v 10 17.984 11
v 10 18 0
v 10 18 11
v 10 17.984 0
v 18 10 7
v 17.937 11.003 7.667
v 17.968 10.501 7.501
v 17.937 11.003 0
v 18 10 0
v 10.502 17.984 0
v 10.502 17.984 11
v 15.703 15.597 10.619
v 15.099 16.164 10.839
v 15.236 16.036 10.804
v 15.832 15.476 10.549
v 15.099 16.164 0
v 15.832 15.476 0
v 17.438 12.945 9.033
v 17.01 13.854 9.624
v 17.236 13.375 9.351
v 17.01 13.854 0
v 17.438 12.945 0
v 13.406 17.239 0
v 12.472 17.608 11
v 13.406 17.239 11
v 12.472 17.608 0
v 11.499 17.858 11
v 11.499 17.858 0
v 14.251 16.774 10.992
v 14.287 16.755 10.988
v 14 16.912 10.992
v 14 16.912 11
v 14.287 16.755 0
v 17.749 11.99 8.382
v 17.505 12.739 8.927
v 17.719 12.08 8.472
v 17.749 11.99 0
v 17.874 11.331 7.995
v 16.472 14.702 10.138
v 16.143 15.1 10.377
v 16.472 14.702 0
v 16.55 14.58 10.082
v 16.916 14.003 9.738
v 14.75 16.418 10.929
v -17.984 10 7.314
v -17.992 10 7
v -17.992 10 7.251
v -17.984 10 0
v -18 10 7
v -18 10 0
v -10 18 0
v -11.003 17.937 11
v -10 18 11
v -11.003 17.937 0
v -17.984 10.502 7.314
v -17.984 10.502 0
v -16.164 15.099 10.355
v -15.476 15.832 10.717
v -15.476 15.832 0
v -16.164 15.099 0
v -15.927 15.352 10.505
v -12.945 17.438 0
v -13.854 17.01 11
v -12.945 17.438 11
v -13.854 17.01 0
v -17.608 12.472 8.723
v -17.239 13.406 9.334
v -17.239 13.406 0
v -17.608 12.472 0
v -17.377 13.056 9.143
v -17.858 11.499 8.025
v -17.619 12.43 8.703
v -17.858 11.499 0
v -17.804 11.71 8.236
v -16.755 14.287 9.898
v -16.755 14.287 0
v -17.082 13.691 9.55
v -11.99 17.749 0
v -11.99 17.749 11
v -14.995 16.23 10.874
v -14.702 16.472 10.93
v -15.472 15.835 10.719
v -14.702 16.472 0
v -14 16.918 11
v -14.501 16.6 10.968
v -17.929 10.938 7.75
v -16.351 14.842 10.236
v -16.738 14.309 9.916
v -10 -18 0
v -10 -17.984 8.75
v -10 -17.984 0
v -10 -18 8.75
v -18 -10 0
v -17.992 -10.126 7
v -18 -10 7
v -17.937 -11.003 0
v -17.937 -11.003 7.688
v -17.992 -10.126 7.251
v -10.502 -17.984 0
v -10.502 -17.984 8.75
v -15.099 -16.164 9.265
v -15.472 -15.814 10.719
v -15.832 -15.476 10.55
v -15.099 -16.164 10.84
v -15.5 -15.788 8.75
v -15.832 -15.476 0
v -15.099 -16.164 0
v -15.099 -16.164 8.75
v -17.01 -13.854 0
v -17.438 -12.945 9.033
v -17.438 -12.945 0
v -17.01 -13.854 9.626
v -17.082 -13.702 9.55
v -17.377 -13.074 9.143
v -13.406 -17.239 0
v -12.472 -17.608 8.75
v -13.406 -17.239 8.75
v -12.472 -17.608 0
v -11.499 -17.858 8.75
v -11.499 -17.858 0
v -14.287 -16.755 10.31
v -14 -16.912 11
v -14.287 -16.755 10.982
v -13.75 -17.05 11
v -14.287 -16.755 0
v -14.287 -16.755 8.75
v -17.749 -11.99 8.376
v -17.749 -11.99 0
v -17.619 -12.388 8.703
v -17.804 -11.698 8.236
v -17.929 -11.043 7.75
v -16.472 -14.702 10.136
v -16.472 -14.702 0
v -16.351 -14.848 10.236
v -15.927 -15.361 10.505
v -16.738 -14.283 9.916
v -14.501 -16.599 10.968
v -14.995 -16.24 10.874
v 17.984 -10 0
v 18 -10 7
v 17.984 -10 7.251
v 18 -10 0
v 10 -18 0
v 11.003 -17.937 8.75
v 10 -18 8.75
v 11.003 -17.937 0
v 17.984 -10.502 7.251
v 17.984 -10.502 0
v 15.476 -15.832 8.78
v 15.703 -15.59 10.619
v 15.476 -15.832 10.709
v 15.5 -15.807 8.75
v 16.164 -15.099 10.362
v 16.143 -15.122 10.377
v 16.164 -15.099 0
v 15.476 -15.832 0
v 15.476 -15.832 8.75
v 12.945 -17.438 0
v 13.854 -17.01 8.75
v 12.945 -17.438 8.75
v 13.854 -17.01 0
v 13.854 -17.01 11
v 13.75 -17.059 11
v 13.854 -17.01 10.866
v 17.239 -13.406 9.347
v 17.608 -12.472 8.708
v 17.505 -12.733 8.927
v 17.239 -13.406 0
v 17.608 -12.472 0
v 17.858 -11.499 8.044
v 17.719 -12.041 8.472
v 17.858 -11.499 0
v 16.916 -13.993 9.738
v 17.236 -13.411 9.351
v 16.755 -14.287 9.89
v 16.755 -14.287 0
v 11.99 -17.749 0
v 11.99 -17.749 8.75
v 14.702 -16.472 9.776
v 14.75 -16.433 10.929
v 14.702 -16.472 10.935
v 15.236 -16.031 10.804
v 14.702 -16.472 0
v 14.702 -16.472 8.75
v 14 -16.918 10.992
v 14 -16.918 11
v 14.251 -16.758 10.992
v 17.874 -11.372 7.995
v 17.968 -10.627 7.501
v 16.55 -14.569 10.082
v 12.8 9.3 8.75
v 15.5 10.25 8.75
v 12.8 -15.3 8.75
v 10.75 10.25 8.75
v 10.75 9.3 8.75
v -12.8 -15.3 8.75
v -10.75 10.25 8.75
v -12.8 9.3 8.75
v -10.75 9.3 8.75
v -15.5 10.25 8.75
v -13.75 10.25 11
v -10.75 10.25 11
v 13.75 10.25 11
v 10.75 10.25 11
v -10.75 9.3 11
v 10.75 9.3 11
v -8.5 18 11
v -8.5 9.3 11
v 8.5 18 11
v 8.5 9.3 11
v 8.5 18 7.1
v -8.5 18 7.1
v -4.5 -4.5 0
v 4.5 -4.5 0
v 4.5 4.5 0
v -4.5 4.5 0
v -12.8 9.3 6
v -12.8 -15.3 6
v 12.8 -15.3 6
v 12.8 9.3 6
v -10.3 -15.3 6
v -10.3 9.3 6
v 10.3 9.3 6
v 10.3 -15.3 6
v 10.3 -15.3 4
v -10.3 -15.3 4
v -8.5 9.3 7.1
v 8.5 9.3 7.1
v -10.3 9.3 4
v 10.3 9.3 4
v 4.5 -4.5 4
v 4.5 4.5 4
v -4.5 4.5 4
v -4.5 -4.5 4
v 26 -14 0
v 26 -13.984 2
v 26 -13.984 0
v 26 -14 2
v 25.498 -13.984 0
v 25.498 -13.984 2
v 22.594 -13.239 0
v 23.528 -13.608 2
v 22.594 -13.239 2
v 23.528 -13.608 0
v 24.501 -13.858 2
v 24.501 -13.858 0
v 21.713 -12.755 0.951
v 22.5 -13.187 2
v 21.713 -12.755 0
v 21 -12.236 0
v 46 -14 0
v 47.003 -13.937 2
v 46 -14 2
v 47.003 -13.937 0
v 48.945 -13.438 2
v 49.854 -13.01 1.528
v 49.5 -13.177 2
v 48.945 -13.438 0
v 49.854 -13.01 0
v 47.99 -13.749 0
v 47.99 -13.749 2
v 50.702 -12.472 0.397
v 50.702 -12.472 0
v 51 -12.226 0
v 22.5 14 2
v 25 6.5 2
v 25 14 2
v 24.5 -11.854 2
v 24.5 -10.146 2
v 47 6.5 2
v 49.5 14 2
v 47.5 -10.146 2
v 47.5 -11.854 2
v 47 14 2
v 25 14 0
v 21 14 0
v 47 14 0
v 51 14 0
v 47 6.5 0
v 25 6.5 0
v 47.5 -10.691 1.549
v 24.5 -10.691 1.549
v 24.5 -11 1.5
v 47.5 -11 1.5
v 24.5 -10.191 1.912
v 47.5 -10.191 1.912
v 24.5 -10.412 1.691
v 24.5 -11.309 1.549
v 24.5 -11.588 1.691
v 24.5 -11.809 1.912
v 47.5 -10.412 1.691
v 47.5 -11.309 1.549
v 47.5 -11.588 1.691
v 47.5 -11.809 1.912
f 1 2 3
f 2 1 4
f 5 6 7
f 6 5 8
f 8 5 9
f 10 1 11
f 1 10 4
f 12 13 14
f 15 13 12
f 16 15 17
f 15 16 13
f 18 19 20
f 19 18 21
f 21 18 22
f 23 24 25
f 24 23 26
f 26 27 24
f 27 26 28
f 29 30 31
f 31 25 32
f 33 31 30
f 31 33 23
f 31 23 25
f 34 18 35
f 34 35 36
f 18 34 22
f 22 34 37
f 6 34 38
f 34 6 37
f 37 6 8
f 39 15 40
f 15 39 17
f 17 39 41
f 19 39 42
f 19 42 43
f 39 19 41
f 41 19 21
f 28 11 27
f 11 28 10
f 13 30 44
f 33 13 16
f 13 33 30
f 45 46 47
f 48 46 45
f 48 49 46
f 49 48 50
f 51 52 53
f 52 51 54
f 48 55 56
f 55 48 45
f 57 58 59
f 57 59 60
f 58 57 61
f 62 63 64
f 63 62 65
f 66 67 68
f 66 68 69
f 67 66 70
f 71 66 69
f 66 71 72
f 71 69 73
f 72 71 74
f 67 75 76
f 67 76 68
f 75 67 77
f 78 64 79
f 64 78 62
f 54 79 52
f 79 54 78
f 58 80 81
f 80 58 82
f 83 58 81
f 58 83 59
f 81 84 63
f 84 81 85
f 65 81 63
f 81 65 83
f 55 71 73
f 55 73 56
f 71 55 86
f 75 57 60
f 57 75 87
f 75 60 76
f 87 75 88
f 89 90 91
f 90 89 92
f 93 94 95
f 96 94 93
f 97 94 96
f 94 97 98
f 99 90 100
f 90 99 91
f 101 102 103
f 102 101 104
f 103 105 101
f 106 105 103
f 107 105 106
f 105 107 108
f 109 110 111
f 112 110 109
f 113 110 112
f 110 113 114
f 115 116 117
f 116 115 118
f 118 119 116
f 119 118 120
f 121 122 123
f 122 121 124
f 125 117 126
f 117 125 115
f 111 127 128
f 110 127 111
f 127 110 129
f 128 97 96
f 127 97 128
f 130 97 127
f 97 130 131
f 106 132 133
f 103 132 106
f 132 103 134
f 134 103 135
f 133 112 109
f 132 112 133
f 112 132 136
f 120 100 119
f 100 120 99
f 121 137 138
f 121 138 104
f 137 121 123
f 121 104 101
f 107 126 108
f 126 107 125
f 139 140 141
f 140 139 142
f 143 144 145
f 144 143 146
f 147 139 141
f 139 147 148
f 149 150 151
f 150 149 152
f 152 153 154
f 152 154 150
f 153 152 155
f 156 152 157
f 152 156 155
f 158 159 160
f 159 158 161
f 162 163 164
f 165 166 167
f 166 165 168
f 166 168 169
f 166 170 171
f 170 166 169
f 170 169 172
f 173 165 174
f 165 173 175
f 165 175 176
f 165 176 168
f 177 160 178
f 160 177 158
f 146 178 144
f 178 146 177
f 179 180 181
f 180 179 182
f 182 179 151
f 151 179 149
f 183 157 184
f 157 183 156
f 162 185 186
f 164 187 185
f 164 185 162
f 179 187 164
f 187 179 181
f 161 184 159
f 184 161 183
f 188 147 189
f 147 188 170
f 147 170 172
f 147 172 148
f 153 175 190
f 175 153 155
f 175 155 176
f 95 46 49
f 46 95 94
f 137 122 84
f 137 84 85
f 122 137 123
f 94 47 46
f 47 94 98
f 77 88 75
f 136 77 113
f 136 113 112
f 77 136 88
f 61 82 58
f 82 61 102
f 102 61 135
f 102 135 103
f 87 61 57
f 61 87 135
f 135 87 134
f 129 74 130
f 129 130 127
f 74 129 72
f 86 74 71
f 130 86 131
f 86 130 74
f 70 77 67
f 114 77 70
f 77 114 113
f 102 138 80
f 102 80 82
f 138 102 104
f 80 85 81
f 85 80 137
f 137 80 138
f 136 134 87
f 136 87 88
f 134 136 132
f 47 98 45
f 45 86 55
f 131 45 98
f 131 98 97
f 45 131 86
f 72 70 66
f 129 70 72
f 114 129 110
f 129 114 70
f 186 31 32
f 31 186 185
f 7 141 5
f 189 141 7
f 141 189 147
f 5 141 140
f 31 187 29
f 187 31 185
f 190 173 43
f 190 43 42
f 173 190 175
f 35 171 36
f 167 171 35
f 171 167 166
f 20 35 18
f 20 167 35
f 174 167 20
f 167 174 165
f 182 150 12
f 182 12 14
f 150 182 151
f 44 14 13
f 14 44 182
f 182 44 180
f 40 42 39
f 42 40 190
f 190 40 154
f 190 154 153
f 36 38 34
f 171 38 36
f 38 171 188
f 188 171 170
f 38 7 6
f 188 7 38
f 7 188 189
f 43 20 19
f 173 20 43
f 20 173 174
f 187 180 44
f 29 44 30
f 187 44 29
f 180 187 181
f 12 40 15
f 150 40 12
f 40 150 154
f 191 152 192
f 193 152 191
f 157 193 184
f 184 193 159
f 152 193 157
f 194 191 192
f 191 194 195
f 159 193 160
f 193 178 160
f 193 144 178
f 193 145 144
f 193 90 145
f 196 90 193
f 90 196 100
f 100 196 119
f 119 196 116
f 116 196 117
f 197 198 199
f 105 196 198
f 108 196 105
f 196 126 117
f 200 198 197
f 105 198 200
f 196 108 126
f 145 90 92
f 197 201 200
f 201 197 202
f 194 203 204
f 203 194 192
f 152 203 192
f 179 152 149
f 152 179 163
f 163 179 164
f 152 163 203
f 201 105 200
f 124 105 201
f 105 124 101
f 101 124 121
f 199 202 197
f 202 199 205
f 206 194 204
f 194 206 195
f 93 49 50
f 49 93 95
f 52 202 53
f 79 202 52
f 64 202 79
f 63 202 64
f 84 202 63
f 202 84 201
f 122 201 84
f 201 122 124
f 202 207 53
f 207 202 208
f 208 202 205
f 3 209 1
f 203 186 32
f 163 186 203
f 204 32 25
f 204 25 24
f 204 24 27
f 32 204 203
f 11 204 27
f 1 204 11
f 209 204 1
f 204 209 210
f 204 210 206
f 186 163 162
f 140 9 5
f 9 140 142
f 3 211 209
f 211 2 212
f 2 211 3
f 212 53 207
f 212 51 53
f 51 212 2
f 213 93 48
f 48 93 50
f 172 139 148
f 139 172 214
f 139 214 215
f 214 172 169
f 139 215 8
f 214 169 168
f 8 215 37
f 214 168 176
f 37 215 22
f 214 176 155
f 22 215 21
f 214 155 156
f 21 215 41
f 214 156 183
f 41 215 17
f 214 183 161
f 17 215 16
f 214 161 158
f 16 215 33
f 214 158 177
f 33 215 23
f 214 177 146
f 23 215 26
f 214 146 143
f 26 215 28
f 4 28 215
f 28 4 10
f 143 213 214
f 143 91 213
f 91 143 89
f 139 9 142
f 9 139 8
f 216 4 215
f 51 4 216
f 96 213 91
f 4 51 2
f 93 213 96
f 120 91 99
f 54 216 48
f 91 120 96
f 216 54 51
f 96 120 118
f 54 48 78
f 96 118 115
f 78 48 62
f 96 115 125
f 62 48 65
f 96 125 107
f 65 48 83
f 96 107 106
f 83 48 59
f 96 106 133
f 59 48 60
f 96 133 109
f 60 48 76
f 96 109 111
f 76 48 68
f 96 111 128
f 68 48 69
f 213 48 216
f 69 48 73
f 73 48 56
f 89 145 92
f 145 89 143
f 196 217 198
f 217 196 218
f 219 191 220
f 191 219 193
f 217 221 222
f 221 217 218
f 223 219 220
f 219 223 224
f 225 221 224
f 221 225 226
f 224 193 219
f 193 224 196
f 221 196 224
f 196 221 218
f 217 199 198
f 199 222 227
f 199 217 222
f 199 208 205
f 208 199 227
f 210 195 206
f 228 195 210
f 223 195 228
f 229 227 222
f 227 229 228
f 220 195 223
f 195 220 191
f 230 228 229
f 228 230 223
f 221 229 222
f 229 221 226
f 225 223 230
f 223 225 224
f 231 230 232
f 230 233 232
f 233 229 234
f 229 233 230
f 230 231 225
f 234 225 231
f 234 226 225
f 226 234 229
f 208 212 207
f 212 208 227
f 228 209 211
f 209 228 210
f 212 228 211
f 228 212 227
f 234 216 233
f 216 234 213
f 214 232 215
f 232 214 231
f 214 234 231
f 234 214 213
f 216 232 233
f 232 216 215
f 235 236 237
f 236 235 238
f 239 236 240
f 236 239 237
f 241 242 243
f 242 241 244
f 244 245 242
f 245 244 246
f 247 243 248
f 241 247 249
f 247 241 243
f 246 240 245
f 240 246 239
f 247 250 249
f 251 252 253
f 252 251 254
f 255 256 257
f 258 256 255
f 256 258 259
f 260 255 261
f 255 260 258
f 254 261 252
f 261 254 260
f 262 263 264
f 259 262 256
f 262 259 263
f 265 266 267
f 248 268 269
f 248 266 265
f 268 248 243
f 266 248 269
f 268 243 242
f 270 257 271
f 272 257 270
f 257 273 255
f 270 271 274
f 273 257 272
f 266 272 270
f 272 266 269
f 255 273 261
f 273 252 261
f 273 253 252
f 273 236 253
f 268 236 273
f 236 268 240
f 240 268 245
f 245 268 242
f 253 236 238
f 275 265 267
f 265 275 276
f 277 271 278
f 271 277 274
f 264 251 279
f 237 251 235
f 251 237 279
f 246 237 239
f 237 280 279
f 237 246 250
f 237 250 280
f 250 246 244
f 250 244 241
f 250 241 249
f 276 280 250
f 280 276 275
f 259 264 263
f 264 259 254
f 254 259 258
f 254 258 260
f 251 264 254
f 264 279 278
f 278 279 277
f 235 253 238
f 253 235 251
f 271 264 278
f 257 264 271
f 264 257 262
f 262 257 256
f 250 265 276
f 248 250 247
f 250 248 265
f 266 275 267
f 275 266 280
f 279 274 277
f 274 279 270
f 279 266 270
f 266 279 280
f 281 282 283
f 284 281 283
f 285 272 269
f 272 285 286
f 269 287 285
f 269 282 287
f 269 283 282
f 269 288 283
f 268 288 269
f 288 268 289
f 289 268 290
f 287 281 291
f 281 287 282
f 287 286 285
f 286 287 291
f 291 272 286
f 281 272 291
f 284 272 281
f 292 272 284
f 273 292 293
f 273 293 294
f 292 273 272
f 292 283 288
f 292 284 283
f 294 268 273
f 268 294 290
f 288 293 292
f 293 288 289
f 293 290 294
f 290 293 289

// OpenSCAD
// Adapted from: https://github.com/luisibanez/ShapesFor3DPrinting/tree/master/OpenSCA

// For case
width  = 36;  // x
length = 36;  // y
height = 11;  // z

// For camera cover
flex_adapter_width = 22;   // measures 21mm, but w/ a nominal 22mm opening it was still too tight.
cover_width = 27;
cover_height = 2;

// For rounded corners
radius1 = 8;
radius2 = 4;

piCameraAdapter();
// Comment out translate to see
// back cover in place.
translate([width,4,-(height-cover_height)])
    piCameraBackCover();


/////////////////////////////////////////////////////////////////////////////////////
// Modules
//

module piCameraBackCoverBevel(length, clearance) {
    c = clearance;
    hh = cover_height / 2;
    hw = ( cover_width / 2 ) + c;
    he = hw + 1.5 + c;
    l = length / 2;
    polyhedron(
        points = [
            [ hw, -l-c, -hh-c ],
            [ hw,  l+c, -hh-c ], 
            [ hw,  l+c, hh ], 
            [ hw, -l-c, hh ],
            [ he, -l-c, -hh-c ],
            [ he,  l+c, -hh-c ] 
            ], 
        faces = [
            [ 5, 1, 0, 4],
            [ 4, 0, 3 ],
            [ 2, 1, 5 ],
            [ 5, 4, 3, 2],
            [ 0, 1, 2, 3],
        ]
    );
}

module piCameraBackCover(for_subtraction=false) {
    indent = ! for_subtraction;
    clearance = for_subtraction ? 0.25 : 0;
    c = 2*clearance;
    cov_l = length-8;
    difference() {
        translate([0,-5,height-cover_height/2])
        difference() {
            translate([0,1,0])
            union() {
                cube(size=[cover_width+c,cov_l+c,cover_height+c],center=true);
                piCameraBackCoverBevel(cov_l, clearance);
                mirror([1,0,0])
                    piCameraBackCoverBevel(cov_l, clearance);
            }
            translate([0,15,0])
                cube(size=[flex_adapter_width-c,15,100],center=true);
            if (indent)
                translate([0,8-length/2,cover_height/2+0.5])
                rotate([0,90,0])
                    cylinder(r=1, h=cover_width-4, center=true, $fn=20);
        }
        if (! for_subtraction) {
            cornerRounding();
        }
    }
}

module cableOpening() {
    w = 17;
    d = 12;
    h = 100;
    translate([-w/2,2+d/2,height-4+0.1])
        cube(size=[w,d,h]);
}

module lensOpening() {
    clearance = 0.5;
    c = 2 * clearance;
    w = 8+c;
    d = 8+c;
    h = 100;
    translate([-w/2,-d/2,-1])
        cube(size=[w,d,h]);
}

module boardOpening() {
    clearance = 0.3;
    c = 2 * clearance;
    w = 25+c;
    d = 24+c;
    h = 100;
    translate([-w/2,-d/2 - 3, height-5])
        cube(size=[w,d,h]);
}

module chipOpening() {
    clearance = 0.3;
    c = 2 * clearance;
    w = 20+c;
    d = 24+c;
    h = 100;
    translate([-w/2,-d/2 - 3, height-7])
        cube(size=[w,d,h]);
}

module cameraFrame() {
    translate([0,0,height/2])
        cube(size=[width,length,height], center=true);
}

module roundedCorner(r) {
    translate([-r, -r, 0])
    difference() {
        translate([0,0,-50])
            cube(size=[r+0.1,r+0.1,100]);
        cylinder(h=100, r=r, $fn=50, center=true);
    }
}

module cornerRounding() {
    // vertical corners
    translate([width/2,length/2,0])
        roundedCorner(radius1);
    translate([-width/2,length/2,0])
    rotate([0,0,90])
        roundedCorner(radius1);
    translate([-width/2,-length/2,0])
    rotate([0,0,180])
        roundedCorner(radius1);
    translate([width/2,-length/2,0])
    rotate([0,0,-90])
        roundedCorner(radius1);

    // top corners
    translate([-width/2,0,height])
    rotate([0,-90,0])
    rotate([90,0,0])
        roundedCorner(radius2);
    translate([width/2,0,height])
    rotate([90,0,0])
        roundedCorner(radius2);
}

module piCameraAdapter() {
    difference() {
        cameraFrame();
        boardOpening();
        chipOpening();
        cableOpening();
        lensOpening();
        cornerRounding();
        piCameraBackCover(for_subtraction=true);
    }
}
